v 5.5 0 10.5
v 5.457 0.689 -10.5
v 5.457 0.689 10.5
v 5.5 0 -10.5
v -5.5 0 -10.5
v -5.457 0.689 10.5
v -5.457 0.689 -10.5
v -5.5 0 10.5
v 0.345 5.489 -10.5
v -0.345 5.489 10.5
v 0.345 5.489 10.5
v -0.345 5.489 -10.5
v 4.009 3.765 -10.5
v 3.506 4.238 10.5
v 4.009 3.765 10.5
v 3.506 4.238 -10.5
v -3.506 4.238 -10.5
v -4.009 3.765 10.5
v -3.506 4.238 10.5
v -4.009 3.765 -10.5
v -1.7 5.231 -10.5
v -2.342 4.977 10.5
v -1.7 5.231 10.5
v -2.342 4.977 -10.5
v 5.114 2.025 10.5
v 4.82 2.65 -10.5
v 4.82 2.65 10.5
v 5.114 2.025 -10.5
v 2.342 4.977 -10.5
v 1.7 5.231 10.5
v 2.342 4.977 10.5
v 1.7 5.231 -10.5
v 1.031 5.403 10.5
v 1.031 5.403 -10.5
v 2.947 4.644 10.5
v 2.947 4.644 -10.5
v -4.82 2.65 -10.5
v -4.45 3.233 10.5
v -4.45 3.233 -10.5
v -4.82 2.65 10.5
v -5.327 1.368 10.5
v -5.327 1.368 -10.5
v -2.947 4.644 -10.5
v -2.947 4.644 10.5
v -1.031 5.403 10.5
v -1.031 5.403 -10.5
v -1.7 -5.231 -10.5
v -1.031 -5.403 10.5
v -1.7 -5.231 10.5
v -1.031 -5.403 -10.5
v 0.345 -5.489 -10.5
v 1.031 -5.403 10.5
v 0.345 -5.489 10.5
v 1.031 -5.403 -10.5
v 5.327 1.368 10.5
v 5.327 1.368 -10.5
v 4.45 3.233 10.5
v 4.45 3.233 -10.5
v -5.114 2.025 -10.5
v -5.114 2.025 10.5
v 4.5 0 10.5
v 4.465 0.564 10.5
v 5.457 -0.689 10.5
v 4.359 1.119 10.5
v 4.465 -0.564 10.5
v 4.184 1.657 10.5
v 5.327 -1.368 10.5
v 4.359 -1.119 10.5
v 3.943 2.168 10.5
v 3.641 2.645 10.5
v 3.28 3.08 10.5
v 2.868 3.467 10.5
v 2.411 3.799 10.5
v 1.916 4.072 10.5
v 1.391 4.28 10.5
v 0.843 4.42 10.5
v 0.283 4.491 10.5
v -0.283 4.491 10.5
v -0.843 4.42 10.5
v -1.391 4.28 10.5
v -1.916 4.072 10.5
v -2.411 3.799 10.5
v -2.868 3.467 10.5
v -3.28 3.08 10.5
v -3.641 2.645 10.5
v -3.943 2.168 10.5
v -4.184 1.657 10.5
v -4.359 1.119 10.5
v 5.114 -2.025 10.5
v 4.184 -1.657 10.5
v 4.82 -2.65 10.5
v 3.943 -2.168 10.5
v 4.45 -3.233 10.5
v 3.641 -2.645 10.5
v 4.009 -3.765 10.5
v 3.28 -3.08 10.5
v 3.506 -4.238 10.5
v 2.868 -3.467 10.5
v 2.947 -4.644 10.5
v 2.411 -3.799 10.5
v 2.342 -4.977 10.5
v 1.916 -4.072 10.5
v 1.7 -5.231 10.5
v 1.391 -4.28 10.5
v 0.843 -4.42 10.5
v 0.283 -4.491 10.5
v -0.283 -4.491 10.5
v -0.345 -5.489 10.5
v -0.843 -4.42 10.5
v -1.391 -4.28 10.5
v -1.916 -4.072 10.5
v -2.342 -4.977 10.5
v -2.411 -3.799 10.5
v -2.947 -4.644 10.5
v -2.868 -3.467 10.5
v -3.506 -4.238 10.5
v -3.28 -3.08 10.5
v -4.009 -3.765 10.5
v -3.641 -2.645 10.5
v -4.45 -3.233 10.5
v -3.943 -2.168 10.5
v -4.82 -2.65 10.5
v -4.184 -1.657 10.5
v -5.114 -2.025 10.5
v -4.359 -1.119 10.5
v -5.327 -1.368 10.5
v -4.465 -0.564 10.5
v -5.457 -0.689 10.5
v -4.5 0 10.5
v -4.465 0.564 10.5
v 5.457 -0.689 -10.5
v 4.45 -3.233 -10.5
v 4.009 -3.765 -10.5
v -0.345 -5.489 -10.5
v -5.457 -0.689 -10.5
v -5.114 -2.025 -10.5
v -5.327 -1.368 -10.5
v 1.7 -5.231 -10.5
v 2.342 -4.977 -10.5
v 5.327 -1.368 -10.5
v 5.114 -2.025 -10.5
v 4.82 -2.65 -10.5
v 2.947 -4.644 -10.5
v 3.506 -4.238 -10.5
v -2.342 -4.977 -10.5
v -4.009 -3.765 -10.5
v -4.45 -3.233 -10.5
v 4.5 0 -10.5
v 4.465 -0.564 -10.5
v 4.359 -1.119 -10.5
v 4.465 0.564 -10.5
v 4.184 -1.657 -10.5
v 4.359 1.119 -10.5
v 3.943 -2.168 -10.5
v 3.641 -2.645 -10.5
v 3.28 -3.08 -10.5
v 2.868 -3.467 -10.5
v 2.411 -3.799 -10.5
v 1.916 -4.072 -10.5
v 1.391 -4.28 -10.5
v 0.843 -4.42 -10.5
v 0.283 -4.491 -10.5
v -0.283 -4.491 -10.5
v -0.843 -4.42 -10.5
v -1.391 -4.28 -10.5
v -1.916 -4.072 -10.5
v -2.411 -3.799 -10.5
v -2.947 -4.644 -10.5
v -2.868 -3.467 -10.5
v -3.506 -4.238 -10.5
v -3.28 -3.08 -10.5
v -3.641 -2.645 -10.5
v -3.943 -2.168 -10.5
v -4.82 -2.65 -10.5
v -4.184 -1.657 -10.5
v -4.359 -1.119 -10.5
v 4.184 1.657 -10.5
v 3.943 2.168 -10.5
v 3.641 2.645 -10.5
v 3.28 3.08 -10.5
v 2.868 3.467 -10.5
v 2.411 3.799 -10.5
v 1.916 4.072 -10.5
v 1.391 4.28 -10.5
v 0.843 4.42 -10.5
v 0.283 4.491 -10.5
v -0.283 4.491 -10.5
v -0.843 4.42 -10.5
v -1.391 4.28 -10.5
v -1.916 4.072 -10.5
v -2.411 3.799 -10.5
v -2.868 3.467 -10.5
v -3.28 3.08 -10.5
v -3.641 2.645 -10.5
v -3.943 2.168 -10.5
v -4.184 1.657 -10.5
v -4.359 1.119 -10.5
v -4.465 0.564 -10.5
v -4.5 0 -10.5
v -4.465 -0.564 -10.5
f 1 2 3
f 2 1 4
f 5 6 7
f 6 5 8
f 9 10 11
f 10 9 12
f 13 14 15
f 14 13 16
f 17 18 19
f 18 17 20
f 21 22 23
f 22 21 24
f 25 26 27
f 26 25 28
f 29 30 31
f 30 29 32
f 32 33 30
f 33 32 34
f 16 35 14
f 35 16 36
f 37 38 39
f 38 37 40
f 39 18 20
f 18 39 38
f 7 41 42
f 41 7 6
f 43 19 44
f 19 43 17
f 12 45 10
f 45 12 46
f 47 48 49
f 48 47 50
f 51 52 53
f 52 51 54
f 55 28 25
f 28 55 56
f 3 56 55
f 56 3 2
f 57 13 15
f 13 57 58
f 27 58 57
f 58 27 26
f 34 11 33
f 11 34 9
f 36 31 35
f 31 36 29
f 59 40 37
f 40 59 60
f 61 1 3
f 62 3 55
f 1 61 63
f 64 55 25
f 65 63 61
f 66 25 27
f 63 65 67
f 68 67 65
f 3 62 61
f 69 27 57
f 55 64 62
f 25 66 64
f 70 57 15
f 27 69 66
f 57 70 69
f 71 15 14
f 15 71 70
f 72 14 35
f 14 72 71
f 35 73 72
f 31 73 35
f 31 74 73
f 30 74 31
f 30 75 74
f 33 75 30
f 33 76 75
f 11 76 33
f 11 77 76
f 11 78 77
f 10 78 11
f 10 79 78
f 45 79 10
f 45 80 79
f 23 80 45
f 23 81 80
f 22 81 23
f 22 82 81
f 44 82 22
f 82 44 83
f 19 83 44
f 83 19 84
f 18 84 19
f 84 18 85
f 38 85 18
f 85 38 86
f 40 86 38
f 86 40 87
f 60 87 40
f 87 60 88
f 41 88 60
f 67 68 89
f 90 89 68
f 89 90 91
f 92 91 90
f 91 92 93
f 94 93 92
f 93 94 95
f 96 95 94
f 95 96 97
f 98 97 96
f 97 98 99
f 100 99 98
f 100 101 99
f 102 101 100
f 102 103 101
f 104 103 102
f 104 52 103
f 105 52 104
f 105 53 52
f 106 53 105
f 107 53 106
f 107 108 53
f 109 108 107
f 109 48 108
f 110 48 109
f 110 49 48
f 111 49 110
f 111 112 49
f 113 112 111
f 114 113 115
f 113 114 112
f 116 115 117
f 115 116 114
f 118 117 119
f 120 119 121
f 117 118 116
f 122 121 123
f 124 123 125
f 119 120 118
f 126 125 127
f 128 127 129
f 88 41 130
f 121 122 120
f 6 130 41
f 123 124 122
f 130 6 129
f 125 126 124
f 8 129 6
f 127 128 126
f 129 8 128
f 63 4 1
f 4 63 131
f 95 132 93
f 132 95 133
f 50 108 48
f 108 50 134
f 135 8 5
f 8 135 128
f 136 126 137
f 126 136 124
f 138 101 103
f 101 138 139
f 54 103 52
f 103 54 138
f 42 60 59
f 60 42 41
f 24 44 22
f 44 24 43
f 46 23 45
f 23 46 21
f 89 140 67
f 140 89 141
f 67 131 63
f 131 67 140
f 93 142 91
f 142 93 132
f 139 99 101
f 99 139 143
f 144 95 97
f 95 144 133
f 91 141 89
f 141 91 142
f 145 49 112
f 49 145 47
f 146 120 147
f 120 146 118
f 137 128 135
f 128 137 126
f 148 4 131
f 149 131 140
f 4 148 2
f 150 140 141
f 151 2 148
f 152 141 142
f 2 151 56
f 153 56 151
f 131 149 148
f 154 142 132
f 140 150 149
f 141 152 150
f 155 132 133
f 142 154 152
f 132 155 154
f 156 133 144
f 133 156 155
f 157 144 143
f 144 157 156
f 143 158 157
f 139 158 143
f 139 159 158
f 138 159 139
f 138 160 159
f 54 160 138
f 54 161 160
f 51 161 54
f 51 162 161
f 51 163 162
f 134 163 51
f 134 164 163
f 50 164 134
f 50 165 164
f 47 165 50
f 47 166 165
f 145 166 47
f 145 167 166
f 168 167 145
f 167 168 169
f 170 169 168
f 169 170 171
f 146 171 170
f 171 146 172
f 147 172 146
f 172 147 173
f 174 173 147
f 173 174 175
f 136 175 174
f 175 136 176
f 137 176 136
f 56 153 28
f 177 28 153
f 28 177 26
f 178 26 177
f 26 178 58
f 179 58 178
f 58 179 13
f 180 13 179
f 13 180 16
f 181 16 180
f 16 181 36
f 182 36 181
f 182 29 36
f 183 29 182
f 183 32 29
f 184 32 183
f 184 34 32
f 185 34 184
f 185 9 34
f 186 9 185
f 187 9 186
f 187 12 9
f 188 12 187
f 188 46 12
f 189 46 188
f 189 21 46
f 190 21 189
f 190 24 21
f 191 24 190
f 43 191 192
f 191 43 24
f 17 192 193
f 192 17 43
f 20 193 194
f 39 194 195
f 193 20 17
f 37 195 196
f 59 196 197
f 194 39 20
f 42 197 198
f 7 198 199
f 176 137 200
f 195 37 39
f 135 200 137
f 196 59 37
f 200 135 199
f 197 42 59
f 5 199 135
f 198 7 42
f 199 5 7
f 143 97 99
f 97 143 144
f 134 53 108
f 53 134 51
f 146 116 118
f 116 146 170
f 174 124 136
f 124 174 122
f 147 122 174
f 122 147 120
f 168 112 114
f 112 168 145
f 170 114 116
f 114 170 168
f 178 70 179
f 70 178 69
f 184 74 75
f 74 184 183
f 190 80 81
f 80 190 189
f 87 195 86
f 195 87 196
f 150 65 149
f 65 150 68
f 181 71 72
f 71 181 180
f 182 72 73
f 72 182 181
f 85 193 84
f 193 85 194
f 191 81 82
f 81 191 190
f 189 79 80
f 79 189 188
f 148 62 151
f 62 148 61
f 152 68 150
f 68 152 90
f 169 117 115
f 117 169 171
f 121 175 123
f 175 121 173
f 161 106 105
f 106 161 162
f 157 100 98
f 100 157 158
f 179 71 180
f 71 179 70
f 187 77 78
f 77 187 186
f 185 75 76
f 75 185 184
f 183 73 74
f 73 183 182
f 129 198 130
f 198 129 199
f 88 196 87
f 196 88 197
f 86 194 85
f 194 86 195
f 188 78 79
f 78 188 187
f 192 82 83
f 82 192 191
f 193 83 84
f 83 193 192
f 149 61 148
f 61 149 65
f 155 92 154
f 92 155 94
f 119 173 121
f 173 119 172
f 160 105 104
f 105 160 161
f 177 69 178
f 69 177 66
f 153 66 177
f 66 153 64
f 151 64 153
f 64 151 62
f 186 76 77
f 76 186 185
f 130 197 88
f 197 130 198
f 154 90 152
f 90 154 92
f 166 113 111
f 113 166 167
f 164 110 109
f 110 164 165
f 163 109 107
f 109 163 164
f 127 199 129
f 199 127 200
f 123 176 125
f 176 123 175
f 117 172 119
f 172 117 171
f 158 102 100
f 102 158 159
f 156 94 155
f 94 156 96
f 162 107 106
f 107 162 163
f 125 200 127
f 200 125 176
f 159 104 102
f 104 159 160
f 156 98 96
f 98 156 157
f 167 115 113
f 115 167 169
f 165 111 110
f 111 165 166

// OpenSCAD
$fn = 50;


difference() {
	union() {
		translate(v = [0, 0, -10.5000000000]) {
			cylinder(h = 21, r = 5.5000000000);
		}
	}
	union() {
		translate(v = [0, 0, -100.0000000000]) {
			cylinder(h = 200, r = 4.5000000000);
		}
	}
}
